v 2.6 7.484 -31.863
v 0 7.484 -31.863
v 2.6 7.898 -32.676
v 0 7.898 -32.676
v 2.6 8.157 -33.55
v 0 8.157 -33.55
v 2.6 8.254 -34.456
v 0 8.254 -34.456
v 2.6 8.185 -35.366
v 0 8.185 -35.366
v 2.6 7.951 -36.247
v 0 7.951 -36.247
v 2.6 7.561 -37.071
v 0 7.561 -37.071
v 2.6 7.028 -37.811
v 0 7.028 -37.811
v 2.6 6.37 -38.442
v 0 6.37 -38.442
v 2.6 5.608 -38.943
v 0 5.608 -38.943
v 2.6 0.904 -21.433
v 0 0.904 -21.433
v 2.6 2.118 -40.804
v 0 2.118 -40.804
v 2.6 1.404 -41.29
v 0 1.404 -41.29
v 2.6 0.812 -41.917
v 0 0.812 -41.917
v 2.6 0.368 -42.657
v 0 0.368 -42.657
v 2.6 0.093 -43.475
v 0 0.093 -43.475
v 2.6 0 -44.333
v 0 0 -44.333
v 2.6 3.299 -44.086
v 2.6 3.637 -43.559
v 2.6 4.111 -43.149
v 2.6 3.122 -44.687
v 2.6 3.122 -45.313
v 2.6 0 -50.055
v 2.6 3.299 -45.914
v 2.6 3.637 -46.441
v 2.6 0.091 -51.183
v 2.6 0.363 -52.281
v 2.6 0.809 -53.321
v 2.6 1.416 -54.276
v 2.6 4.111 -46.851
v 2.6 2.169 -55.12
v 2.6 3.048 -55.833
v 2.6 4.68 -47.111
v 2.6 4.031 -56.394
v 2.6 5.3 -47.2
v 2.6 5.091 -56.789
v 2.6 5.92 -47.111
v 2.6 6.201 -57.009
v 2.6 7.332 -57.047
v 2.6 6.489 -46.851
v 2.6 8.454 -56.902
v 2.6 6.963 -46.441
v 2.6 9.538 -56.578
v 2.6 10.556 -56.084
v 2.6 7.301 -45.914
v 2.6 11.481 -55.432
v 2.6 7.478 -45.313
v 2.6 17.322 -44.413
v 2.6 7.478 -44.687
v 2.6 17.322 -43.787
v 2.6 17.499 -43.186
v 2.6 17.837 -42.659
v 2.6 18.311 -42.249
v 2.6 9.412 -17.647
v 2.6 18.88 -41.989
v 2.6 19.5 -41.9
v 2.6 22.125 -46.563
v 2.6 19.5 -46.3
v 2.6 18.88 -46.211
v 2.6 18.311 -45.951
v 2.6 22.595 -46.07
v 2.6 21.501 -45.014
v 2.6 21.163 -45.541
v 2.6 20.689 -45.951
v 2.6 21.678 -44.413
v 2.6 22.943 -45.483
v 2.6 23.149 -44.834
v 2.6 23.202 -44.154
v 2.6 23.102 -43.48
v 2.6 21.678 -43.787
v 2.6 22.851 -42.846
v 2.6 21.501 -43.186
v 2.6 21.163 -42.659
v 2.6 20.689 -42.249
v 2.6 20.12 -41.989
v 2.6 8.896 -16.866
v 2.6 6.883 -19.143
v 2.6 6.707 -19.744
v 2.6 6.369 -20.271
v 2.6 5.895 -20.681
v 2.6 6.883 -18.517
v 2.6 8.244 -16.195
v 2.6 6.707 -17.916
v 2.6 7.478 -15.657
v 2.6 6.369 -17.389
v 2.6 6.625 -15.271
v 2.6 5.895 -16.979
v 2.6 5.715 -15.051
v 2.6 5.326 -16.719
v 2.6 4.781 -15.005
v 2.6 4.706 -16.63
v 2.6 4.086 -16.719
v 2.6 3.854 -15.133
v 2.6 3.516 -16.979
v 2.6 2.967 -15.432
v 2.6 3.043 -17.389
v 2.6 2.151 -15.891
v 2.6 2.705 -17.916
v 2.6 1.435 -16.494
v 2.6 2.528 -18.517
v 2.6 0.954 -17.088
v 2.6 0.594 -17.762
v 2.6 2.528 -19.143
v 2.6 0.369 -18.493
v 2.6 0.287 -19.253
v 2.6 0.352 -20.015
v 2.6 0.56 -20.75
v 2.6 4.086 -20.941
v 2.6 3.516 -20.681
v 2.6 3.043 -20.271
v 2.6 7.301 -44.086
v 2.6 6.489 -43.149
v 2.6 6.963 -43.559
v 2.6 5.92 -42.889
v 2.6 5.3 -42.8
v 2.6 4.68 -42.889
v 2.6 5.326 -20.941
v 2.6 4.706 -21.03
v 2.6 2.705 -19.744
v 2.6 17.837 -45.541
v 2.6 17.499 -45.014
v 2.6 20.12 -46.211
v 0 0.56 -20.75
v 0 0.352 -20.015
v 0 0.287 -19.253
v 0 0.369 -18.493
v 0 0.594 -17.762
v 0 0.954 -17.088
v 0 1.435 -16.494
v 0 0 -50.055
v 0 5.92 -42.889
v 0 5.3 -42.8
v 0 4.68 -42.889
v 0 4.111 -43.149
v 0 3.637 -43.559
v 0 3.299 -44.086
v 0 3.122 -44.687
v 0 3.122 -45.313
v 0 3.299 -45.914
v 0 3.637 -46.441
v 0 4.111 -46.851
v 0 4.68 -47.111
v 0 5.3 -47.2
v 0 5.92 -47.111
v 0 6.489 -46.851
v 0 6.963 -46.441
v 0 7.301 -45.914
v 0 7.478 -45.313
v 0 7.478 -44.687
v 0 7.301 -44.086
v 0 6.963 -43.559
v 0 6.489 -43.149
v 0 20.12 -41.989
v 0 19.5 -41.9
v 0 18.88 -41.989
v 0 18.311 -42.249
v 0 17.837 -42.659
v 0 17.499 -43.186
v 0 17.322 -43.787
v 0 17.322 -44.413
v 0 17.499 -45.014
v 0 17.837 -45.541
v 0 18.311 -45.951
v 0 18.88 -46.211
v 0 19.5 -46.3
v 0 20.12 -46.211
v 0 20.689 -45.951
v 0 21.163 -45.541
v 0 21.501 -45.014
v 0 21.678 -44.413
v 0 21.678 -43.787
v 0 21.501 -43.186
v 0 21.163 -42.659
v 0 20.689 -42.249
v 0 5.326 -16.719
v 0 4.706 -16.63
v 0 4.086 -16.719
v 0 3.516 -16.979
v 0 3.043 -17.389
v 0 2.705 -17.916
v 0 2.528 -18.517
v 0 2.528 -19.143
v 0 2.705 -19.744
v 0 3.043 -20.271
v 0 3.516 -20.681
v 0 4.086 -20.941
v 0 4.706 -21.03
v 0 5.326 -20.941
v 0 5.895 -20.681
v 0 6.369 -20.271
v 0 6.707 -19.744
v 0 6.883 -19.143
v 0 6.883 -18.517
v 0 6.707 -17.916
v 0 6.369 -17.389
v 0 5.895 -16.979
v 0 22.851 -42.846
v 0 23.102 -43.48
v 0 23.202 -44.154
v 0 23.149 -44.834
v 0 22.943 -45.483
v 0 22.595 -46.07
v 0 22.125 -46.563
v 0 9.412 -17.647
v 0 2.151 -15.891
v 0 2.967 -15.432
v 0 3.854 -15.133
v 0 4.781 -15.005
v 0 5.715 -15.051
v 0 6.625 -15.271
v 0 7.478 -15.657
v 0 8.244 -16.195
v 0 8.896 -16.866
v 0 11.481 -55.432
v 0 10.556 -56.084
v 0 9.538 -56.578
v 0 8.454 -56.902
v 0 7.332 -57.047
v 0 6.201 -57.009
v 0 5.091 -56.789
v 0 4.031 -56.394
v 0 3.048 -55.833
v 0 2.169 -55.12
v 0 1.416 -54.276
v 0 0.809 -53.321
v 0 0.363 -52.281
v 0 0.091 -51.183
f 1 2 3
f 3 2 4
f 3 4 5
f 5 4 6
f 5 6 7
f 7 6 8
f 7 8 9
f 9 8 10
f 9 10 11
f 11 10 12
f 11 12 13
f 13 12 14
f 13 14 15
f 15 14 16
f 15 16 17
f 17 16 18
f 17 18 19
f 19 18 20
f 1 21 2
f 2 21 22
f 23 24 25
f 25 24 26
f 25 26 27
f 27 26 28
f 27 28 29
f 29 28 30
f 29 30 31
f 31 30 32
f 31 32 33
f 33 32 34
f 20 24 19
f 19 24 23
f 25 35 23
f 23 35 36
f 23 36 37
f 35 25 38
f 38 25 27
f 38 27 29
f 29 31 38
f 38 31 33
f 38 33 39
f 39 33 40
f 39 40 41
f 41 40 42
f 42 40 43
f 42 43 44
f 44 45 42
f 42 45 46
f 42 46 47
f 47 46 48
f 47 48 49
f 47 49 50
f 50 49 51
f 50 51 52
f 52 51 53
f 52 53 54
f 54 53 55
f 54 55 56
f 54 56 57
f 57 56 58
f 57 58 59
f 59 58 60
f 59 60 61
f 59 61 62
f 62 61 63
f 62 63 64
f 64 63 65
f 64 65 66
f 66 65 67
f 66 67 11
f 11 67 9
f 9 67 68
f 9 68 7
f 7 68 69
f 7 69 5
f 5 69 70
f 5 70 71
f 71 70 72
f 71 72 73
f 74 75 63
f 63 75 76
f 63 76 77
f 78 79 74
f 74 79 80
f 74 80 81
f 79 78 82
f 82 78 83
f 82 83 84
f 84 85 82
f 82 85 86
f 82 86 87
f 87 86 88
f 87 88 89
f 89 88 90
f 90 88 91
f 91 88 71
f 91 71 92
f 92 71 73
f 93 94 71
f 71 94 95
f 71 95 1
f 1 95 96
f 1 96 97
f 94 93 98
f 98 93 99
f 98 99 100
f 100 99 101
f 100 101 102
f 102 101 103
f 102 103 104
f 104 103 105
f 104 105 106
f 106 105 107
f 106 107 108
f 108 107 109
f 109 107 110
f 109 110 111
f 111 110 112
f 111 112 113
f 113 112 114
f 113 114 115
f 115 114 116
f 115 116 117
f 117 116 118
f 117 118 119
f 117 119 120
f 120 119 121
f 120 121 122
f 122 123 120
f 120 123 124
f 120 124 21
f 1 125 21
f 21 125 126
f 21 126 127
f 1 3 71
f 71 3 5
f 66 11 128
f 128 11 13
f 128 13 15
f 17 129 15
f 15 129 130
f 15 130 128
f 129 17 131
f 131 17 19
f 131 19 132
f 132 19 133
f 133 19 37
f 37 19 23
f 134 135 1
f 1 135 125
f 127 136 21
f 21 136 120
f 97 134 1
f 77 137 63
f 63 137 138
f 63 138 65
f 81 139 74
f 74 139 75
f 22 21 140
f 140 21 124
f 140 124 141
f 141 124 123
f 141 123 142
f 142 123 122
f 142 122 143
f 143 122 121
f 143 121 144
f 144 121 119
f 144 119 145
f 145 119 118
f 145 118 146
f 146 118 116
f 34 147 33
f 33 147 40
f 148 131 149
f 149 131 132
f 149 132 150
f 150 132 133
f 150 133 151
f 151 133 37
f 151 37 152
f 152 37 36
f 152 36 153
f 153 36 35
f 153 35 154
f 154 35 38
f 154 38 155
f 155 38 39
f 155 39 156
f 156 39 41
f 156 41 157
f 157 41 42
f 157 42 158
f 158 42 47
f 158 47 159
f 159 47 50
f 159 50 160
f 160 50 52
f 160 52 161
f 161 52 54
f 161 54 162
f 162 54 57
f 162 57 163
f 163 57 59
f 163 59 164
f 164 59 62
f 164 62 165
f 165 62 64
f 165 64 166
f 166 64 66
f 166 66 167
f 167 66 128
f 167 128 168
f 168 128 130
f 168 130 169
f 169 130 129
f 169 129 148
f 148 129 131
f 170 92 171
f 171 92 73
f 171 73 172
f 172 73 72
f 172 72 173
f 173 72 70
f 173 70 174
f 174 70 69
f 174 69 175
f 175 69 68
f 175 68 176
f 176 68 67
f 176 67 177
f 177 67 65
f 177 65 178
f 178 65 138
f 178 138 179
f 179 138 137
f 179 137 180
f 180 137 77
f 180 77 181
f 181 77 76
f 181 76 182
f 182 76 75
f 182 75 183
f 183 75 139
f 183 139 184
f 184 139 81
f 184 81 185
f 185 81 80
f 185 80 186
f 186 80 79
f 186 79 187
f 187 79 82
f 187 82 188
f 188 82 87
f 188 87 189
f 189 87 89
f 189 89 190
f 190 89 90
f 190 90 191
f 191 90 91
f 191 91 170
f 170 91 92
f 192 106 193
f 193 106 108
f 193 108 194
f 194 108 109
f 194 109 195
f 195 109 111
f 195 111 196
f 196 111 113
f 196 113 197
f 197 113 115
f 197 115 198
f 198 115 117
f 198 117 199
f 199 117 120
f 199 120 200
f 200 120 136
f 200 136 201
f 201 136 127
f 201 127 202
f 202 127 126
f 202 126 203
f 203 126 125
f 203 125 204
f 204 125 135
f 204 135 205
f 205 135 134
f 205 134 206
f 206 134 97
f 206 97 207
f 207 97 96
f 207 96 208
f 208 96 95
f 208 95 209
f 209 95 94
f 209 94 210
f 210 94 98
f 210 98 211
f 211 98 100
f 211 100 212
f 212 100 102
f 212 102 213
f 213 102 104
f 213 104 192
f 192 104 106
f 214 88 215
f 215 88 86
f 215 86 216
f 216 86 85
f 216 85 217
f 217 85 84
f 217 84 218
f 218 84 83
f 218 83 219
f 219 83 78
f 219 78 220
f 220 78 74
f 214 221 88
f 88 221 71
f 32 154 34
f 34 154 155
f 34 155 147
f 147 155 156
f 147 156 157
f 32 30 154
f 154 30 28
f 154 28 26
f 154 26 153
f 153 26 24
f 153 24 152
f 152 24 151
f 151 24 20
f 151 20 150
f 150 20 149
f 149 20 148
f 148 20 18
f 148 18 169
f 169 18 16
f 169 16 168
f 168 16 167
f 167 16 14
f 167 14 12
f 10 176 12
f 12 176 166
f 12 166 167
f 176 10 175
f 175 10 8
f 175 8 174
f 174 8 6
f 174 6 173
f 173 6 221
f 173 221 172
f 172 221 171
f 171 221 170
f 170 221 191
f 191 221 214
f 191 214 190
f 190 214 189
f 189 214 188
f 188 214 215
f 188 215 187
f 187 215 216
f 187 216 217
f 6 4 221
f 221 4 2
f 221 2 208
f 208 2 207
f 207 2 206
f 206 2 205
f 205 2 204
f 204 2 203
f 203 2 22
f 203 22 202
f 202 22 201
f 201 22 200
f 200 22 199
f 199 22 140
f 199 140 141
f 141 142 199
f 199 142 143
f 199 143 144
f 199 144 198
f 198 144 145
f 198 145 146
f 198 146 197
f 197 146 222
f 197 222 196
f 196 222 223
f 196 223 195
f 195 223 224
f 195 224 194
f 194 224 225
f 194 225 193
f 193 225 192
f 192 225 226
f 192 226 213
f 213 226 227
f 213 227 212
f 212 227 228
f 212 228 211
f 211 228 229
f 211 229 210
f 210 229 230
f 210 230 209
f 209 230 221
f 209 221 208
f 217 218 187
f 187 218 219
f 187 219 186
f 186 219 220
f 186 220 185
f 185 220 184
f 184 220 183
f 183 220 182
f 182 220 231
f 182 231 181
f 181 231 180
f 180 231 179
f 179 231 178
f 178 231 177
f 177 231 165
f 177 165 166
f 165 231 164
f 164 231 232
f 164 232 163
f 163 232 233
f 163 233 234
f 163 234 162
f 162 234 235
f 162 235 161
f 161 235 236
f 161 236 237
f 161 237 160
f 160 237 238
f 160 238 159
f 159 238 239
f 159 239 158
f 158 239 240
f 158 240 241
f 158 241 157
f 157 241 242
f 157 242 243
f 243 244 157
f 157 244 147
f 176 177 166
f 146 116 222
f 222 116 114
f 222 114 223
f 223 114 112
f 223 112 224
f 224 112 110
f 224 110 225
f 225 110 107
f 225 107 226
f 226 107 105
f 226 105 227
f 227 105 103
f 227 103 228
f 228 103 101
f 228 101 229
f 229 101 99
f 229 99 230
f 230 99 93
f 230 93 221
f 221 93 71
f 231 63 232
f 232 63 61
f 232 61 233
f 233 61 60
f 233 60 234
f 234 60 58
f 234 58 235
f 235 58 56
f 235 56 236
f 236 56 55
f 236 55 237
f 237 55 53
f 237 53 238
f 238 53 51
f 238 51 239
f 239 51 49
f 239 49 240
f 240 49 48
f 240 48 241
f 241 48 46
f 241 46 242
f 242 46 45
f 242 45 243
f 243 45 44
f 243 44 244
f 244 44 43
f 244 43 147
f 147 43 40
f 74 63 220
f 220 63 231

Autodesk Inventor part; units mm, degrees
ref_plane "YZ Plane" through (0, 0, 0) normal (1, 0, 0) x (0, 1, 0)
ref_plane "XZ Plane" through (0, 0, 0) normal (0, 1, 0) x (-1, 0, 0)
ref_plane "XY Plane" through (0, 0, 0) normal (0, 0, 1) x (1, 0, 0)
sketch "Boceto1" plane through (0, 0, 0) normal (1, 0, 0) x (0, 1, 0)
  line L0 (0, 0) -> (0, -65)
  line L1 (0, -65) -> (24, -65)
  line L2 (24, -65) -> (24, -45)
  line L3 (24, -45) -> (0, -65)
  line L4 (24, -45) -> (0, 0)
  line L5 (0, -65) -> (0, -60)
  dimension "d0" = 65
  dimension "d6" = 24
  dimension "d7" = 20
  dimension "d8" = 5
extrude "Extrusión1" add sketch "Boceto1" along normal blind 2.6 contours L4 L3 L0
fillet "Empalme1" radius 7 1 edges at (1.3, 0, -65)
fillet "Empalme2" radius 5 1 edges at (1.3, 0, 0)
fillet "Empalme3" radius 3 1 edges at (1.3, 24, -45)
sketch "Boceto2" plane through (2.6, 0, 0) normal (1, 0, 0) x (0, 0, -1)
  line L0 (0, 0) -> (49.1759, 26.2271)
  line L1 (42.8462, 22.8513) -> (17.6471, 9.4118) projected
  line L2 (0, 0) -> (69.4683, 0)
  arc A0 (50.0547, 0) -> (55.4323, 11.4813) centre (50.0547, 7) ccw projected
  line L3 (55.4323, 11.4813) -> (45, 24)
  line L4 (55.4323, 11.4813) -> (46.5627, 22.1248) projected
  line L5 (45, 24) -> (45, 0)
  circle A1 centre (45, 5.3) radius 2.2
  circle A2 centre (44.1, 19.5) radius 2.2
  line L6 (17.6471, 9.4118) -> (20.0129, 0)
  circle A3 centre (18.83, 4.7059) radius 2.2
  dimension "d14" = 4.4
  dimension "d15" = 5.3
  dimension "d18" = 4.4
  dimension "d19" = 0.9
  dimension "d20" = 19.5
  dimension "d21" = 4.4
  dimension "d22" = 26.17
extrude "Extrusión2" cut sketch "Boceto2" against normal blind 10 contours A3 L6 | L6 A3 | A1 L5 | L5 A1 | A2 L5 | L5 A2
sketch "Boceto3" plane through (2.6, 0, 0) normal (1, 0, 0) x (0, 0, -1)
  arc A0 (17.6471, 9.4118) -> (20, 0) centre (20, 5) ccw projected
  line L0 (55.4323, 11.4813) -> (46.5627, 22.1248) projected
  line L1 (42.8462, 22.8513) -> (17.6471, 9.4118) projected
  line L2 (32.6471, 17.4118) -> (36.4118, 10.3529)
  line L3 (20, 0) -> (36.4118, 10.3529)
  line L4 (36.4118, 10.3529) -> (41.9333, 0)
  line L5 (20, 0) -> (50.0547, 0) projected
  line L6 (20, 0) -> (41.9333, 0)
  point P0 (0, 0)
  dimension "d24" = 90
  dimension "d25" = 8
  dimension "d26" = 17
  dimension "d27" = 11.7333
extrude "Extrusión3" cut sketch "Boceto3" against normal blind 10 contours L3 L4 L5
fillet "Empalme4" radius 4 2 edges at (1.3, 0, -20) (1.3, 0, -41.9333)
fillet "Empalme de cara1" radius 5 1 edges at (1.3, 10.3529, -36.4118)
properties part number "Palanca_barra"
